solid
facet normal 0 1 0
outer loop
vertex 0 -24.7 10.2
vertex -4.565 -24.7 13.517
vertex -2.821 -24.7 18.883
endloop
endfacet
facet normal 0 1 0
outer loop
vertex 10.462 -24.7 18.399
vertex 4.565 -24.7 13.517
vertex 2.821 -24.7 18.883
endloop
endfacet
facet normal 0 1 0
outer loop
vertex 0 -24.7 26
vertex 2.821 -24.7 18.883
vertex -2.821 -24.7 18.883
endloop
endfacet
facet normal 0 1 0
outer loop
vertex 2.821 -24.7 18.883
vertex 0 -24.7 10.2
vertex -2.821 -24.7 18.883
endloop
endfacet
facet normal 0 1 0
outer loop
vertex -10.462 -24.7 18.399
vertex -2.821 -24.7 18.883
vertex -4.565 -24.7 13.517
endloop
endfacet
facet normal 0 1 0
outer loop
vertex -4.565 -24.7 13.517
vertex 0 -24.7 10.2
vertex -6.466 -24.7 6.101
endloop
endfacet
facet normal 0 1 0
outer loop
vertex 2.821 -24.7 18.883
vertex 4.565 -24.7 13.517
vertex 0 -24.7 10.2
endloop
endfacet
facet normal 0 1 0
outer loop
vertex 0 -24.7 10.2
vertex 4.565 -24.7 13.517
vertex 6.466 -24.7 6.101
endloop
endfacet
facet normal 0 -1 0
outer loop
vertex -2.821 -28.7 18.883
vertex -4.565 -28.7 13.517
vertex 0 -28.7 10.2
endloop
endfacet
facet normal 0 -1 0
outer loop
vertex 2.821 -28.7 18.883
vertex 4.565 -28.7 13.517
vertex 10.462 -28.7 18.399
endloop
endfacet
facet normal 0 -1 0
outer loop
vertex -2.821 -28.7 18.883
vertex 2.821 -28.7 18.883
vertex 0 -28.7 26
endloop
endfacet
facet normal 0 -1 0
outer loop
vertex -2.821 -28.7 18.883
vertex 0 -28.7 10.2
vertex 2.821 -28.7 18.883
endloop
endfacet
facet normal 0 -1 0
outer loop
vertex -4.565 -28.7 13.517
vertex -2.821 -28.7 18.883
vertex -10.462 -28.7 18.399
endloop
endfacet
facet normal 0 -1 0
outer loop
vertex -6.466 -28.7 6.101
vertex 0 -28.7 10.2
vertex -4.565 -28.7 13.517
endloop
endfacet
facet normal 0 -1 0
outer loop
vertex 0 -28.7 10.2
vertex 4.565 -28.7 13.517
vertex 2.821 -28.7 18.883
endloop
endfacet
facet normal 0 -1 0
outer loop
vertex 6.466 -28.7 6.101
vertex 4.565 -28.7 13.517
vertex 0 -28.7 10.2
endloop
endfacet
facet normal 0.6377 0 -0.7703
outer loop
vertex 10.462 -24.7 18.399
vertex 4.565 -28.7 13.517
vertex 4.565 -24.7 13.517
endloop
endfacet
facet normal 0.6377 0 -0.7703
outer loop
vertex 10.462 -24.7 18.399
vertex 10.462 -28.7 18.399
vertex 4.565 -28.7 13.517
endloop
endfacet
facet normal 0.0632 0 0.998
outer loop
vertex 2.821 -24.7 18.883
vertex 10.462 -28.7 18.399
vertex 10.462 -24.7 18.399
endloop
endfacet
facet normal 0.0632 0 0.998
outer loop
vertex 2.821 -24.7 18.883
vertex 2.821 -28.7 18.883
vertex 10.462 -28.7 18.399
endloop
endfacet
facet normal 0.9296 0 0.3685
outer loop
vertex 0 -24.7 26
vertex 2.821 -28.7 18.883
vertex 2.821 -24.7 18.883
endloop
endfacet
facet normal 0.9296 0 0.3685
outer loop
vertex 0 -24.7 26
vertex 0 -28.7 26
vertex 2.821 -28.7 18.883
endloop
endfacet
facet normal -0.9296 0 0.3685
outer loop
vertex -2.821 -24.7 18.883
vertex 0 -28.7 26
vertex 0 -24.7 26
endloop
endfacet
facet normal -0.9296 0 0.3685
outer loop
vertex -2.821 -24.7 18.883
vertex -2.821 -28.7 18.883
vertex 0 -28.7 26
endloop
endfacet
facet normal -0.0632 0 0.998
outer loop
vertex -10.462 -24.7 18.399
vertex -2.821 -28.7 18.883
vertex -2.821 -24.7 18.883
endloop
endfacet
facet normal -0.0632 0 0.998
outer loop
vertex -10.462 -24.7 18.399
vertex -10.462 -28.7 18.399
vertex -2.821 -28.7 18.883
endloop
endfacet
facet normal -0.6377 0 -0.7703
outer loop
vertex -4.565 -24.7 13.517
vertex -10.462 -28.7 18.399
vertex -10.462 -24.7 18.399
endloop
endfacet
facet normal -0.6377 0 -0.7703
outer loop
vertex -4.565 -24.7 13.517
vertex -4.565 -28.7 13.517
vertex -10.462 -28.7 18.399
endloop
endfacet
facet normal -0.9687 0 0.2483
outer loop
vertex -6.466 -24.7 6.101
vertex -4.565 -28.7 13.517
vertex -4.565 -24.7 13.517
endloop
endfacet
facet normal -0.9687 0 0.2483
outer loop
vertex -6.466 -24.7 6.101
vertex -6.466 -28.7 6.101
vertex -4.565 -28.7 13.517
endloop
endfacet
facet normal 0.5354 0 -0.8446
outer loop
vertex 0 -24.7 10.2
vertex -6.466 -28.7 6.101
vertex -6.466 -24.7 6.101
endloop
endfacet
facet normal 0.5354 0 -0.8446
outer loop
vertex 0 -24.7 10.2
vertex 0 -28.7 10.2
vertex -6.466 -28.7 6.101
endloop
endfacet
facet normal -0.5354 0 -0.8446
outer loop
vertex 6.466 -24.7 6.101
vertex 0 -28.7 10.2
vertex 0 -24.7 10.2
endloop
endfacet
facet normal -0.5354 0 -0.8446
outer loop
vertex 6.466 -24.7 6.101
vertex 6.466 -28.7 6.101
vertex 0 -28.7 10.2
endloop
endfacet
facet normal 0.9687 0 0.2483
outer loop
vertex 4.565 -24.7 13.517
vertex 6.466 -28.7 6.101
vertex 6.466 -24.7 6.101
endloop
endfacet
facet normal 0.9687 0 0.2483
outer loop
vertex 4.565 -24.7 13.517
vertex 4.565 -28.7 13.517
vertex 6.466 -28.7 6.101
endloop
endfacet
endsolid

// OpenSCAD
// Estrella dorada al frente
H = 30; R = 25;
translate([0, -R - 2.2, H / 2]) rotate([90, 0, 0]) translate([0, 0, -2.5]) linear_extrude(4)
    polygon([for (i = [0:9]) let(r = i % 2 == 0 ? 11 : 4.8, a = 90 + 36 * i) [r * cos(a), r * sin(a)]]);
